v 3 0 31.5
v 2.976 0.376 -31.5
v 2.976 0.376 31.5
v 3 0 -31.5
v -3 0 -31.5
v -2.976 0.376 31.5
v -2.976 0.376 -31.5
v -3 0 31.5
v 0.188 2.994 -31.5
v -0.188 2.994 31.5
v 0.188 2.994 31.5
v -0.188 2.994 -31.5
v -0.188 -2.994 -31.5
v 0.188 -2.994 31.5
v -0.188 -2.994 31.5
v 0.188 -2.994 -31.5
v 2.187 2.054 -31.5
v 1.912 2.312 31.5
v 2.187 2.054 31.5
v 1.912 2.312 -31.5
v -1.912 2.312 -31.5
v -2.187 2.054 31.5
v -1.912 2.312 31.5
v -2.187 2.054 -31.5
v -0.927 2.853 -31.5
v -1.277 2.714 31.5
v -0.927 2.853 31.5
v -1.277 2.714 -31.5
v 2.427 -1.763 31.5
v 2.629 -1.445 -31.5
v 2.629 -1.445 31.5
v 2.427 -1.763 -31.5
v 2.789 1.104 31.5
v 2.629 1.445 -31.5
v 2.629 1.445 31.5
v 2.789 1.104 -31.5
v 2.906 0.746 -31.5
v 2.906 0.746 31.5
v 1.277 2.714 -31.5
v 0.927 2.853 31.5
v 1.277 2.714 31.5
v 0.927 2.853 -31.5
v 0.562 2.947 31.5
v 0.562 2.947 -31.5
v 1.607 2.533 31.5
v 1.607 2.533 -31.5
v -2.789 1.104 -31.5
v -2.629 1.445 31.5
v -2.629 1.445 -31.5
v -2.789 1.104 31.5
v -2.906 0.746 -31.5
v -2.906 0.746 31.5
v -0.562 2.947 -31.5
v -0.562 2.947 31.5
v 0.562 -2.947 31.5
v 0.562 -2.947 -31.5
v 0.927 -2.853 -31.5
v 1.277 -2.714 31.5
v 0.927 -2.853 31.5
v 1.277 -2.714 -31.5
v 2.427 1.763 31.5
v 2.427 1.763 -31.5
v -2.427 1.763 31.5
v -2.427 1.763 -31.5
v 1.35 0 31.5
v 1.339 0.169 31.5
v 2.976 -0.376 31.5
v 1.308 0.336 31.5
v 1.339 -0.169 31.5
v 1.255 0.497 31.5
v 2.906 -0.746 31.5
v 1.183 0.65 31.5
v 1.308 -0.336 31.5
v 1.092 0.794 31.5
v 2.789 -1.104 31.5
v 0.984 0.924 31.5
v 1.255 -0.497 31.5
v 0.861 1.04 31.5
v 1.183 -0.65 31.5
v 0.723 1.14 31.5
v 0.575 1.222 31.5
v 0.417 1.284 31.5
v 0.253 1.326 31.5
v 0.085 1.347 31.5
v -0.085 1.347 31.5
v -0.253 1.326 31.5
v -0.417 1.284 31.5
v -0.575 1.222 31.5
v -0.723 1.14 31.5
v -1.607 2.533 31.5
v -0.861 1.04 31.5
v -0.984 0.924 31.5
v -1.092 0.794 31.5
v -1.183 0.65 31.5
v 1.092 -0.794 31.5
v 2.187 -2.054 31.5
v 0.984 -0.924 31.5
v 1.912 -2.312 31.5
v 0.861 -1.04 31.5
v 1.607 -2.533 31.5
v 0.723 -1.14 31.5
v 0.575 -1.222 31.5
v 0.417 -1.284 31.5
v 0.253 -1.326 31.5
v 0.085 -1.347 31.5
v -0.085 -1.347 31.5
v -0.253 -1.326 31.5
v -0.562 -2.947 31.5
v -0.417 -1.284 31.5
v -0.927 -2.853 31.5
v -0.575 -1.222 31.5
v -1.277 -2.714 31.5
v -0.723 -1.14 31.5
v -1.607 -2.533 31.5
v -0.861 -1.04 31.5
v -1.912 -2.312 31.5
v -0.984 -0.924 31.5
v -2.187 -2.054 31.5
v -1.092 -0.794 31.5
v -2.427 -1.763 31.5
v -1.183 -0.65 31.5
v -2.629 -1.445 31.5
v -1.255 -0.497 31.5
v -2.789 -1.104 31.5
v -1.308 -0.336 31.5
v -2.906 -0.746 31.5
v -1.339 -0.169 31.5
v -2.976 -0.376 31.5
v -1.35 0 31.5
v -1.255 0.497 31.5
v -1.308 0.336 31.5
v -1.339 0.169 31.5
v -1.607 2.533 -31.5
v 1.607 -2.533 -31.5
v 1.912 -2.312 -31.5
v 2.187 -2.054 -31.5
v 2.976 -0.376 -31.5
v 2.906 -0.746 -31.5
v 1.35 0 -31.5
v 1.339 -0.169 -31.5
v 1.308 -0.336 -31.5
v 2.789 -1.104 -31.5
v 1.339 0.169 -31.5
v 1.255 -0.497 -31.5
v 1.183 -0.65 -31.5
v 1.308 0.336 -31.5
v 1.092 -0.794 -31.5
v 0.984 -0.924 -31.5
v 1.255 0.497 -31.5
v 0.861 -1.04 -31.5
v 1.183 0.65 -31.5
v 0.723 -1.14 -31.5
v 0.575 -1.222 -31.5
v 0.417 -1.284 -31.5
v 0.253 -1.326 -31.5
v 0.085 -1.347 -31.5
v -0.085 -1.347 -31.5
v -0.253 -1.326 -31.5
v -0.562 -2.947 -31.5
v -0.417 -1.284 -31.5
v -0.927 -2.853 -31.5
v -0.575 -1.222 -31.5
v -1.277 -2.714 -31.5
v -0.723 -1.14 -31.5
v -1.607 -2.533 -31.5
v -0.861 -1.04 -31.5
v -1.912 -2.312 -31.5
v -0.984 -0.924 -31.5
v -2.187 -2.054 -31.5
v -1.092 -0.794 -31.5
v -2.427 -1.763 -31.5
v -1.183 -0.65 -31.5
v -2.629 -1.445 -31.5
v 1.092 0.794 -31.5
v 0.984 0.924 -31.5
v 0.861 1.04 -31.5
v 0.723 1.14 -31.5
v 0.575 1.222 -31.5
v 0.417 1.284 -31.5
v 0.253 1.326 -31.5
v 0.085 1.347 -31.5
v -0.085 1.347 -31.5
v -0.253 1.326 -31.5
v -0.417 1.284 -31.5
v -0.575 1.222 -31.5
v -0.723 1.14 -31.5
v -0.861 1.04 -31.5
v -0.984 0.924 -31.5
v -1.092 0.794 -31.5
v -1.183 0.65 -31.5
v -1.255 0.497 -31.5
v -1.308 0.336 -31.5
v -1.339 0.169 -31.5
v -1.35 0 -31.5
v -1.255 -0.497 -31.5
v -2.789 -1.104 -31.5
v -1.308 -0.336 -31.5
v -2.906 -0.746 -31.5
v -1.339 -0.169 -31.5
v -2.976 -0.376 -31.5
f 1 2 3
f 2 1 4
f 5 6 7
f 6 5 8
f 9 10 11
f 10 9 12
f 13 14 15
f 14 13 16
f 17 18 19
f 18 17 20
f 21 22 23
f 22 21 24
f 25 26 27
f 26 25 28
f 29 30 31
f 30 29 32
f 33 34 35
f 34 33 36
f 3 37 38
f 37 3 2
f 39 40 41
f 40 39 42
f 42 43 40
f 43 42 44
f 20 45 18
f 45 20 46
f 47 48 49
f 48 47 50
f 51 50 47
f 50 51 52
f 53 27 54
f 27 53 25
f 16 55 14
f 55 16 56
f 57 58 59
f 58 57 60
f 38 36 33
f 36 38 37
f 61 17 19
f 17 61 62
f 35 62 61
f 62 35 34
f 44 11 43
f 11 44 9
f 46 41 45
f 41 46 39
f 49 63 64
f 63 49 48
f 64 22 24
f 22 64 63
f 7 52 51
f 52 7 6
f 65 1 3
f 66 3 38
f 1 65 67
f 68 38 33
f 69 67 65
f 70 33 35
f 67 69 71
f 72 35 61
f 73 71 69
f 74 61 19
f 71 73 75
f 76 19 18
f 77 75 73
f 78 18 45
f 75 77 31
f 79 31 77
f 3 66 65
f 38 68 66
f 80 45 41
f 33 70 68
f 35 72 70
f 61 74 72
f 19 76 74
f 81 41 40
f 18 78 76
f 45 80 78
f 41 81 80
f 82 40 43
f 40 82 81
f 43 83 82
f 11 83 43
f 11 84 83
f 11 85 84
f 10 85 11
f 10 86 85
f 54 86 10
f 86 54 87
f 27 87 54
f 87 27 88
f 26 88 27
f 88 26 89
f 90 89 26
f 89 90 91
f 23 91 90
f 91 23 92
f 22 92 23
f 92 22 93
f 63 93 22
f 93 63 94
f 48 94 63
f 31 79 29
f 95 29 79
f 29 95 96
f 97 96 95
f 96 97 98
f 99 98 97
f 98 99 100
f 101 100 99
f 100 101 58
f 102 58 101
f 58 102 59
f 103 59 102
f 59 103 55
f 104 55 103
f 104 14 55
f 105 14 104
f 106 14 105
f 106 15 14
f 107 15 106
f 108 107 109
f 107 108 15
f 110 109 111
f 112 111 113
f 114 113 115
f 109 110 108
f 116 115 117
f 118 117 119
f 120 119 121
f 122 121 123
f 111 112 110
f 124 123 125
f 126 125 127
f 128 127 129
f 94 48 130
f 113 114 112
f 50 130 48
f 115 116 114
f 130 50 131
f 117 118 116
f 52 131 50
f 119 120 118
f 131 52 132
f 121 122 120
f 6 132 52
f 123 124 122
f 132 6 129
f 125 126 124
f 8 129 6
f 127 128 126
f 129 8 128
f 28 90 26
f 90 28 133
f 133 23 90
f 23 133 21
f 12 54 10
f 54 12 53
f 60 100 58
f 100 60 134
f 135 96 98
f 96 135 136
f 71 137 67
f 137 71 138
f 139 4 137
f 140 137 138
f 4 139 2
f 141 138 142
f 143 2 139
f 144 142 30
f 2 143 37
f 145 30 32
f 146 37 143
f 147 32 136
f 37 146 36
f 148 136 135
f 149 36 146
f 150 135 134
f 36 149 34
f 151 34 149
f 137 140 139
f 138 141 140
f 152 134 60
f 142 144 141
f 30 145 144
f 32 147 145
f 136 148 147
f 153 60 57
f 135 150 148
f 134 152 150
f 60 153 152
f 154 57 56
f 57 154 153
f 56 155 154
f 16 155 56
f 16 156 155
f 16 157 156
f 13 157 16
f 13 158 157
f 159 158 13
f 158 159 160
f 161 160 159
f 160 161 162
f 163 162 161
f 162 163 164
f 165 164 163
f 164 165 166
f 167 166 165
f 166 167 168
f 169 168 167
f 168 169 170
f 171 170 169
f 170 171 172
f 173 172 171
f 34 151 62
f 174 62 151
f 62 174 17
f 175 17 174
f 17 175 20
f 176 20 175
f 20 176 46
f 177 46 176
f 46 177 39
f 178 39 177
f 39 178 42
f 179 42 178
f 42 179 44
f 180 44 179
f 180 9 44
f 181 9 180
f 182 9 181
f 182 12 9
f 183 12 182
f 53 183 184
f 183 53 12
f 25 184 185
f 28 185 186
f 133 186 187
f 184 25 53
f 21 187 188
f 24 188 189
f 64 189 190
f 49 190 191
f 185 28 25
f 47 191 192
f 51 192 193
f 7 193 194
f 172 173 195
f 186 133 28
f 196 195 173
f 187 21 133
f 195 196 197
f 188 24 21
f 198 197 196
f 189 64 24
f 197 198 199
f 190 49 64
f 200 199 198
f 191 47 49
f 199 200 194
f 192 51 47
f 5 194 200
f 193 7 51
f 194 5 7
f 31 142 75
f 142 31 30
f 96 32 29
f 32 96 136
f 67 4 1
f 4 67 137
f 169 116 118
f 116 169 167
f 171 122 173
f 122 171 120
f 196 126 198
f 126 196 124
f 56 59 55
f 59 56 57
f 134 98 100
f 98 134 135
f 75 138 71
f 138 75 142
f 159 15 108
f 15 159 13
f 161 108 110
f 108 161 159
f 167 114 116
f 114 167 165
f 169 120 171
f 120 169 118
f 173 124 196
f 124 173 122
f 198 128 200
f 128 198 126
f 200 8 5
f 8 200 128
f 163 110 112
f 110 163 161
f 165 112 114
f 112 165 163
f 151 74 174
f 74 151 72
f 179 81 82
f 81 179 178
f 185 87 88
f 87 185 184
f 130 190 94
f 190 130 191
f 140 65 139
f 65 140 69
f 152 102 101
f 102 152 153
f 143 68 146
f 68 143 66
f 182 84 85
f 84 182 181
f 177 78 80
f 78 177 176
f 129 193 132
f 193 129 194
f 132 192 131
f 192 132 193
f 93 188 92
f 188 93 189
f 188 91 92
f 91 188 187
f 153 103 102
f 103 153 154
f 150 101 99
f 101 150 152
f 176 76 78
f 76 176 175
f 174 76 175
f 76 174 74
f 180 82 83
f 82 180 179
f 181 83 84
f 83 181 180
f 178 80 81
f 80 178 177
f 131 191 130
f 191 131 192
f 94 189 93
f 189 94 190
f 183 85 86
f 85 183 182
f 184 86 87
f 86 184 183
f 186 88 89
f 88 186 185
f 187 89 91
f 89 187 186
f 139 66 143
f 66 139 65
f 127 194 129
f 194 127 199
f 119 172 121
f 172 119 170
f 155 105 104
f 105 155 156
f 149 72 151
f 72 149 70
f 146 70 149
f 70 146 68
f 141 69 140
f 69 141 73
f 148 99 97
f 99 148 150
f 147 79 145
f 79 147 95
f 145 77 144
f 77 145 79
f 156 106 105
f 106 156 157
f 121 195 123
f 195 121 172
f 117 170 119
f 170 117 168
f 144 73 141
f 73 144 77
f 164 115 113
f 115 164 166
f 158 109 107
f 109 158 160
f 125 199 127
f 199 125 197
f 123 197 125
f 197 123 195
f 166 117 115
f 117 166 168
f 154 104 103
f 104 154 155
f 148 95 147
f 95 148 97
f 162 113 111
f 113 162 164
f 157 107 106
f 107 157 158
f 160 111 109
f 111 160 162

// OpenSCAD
$fn = 50;


difference() {
	union() {
		translate(v = [0, 0, -31.5000000000]) {
			cylinder(h = 63, r = 3.0000000000);
		}
	}
	union() {
		translate(v = [0, 0, -100.0000000000]) {
			cylinder(h = 200, r = 1.3500000000);
		}
	}
}
